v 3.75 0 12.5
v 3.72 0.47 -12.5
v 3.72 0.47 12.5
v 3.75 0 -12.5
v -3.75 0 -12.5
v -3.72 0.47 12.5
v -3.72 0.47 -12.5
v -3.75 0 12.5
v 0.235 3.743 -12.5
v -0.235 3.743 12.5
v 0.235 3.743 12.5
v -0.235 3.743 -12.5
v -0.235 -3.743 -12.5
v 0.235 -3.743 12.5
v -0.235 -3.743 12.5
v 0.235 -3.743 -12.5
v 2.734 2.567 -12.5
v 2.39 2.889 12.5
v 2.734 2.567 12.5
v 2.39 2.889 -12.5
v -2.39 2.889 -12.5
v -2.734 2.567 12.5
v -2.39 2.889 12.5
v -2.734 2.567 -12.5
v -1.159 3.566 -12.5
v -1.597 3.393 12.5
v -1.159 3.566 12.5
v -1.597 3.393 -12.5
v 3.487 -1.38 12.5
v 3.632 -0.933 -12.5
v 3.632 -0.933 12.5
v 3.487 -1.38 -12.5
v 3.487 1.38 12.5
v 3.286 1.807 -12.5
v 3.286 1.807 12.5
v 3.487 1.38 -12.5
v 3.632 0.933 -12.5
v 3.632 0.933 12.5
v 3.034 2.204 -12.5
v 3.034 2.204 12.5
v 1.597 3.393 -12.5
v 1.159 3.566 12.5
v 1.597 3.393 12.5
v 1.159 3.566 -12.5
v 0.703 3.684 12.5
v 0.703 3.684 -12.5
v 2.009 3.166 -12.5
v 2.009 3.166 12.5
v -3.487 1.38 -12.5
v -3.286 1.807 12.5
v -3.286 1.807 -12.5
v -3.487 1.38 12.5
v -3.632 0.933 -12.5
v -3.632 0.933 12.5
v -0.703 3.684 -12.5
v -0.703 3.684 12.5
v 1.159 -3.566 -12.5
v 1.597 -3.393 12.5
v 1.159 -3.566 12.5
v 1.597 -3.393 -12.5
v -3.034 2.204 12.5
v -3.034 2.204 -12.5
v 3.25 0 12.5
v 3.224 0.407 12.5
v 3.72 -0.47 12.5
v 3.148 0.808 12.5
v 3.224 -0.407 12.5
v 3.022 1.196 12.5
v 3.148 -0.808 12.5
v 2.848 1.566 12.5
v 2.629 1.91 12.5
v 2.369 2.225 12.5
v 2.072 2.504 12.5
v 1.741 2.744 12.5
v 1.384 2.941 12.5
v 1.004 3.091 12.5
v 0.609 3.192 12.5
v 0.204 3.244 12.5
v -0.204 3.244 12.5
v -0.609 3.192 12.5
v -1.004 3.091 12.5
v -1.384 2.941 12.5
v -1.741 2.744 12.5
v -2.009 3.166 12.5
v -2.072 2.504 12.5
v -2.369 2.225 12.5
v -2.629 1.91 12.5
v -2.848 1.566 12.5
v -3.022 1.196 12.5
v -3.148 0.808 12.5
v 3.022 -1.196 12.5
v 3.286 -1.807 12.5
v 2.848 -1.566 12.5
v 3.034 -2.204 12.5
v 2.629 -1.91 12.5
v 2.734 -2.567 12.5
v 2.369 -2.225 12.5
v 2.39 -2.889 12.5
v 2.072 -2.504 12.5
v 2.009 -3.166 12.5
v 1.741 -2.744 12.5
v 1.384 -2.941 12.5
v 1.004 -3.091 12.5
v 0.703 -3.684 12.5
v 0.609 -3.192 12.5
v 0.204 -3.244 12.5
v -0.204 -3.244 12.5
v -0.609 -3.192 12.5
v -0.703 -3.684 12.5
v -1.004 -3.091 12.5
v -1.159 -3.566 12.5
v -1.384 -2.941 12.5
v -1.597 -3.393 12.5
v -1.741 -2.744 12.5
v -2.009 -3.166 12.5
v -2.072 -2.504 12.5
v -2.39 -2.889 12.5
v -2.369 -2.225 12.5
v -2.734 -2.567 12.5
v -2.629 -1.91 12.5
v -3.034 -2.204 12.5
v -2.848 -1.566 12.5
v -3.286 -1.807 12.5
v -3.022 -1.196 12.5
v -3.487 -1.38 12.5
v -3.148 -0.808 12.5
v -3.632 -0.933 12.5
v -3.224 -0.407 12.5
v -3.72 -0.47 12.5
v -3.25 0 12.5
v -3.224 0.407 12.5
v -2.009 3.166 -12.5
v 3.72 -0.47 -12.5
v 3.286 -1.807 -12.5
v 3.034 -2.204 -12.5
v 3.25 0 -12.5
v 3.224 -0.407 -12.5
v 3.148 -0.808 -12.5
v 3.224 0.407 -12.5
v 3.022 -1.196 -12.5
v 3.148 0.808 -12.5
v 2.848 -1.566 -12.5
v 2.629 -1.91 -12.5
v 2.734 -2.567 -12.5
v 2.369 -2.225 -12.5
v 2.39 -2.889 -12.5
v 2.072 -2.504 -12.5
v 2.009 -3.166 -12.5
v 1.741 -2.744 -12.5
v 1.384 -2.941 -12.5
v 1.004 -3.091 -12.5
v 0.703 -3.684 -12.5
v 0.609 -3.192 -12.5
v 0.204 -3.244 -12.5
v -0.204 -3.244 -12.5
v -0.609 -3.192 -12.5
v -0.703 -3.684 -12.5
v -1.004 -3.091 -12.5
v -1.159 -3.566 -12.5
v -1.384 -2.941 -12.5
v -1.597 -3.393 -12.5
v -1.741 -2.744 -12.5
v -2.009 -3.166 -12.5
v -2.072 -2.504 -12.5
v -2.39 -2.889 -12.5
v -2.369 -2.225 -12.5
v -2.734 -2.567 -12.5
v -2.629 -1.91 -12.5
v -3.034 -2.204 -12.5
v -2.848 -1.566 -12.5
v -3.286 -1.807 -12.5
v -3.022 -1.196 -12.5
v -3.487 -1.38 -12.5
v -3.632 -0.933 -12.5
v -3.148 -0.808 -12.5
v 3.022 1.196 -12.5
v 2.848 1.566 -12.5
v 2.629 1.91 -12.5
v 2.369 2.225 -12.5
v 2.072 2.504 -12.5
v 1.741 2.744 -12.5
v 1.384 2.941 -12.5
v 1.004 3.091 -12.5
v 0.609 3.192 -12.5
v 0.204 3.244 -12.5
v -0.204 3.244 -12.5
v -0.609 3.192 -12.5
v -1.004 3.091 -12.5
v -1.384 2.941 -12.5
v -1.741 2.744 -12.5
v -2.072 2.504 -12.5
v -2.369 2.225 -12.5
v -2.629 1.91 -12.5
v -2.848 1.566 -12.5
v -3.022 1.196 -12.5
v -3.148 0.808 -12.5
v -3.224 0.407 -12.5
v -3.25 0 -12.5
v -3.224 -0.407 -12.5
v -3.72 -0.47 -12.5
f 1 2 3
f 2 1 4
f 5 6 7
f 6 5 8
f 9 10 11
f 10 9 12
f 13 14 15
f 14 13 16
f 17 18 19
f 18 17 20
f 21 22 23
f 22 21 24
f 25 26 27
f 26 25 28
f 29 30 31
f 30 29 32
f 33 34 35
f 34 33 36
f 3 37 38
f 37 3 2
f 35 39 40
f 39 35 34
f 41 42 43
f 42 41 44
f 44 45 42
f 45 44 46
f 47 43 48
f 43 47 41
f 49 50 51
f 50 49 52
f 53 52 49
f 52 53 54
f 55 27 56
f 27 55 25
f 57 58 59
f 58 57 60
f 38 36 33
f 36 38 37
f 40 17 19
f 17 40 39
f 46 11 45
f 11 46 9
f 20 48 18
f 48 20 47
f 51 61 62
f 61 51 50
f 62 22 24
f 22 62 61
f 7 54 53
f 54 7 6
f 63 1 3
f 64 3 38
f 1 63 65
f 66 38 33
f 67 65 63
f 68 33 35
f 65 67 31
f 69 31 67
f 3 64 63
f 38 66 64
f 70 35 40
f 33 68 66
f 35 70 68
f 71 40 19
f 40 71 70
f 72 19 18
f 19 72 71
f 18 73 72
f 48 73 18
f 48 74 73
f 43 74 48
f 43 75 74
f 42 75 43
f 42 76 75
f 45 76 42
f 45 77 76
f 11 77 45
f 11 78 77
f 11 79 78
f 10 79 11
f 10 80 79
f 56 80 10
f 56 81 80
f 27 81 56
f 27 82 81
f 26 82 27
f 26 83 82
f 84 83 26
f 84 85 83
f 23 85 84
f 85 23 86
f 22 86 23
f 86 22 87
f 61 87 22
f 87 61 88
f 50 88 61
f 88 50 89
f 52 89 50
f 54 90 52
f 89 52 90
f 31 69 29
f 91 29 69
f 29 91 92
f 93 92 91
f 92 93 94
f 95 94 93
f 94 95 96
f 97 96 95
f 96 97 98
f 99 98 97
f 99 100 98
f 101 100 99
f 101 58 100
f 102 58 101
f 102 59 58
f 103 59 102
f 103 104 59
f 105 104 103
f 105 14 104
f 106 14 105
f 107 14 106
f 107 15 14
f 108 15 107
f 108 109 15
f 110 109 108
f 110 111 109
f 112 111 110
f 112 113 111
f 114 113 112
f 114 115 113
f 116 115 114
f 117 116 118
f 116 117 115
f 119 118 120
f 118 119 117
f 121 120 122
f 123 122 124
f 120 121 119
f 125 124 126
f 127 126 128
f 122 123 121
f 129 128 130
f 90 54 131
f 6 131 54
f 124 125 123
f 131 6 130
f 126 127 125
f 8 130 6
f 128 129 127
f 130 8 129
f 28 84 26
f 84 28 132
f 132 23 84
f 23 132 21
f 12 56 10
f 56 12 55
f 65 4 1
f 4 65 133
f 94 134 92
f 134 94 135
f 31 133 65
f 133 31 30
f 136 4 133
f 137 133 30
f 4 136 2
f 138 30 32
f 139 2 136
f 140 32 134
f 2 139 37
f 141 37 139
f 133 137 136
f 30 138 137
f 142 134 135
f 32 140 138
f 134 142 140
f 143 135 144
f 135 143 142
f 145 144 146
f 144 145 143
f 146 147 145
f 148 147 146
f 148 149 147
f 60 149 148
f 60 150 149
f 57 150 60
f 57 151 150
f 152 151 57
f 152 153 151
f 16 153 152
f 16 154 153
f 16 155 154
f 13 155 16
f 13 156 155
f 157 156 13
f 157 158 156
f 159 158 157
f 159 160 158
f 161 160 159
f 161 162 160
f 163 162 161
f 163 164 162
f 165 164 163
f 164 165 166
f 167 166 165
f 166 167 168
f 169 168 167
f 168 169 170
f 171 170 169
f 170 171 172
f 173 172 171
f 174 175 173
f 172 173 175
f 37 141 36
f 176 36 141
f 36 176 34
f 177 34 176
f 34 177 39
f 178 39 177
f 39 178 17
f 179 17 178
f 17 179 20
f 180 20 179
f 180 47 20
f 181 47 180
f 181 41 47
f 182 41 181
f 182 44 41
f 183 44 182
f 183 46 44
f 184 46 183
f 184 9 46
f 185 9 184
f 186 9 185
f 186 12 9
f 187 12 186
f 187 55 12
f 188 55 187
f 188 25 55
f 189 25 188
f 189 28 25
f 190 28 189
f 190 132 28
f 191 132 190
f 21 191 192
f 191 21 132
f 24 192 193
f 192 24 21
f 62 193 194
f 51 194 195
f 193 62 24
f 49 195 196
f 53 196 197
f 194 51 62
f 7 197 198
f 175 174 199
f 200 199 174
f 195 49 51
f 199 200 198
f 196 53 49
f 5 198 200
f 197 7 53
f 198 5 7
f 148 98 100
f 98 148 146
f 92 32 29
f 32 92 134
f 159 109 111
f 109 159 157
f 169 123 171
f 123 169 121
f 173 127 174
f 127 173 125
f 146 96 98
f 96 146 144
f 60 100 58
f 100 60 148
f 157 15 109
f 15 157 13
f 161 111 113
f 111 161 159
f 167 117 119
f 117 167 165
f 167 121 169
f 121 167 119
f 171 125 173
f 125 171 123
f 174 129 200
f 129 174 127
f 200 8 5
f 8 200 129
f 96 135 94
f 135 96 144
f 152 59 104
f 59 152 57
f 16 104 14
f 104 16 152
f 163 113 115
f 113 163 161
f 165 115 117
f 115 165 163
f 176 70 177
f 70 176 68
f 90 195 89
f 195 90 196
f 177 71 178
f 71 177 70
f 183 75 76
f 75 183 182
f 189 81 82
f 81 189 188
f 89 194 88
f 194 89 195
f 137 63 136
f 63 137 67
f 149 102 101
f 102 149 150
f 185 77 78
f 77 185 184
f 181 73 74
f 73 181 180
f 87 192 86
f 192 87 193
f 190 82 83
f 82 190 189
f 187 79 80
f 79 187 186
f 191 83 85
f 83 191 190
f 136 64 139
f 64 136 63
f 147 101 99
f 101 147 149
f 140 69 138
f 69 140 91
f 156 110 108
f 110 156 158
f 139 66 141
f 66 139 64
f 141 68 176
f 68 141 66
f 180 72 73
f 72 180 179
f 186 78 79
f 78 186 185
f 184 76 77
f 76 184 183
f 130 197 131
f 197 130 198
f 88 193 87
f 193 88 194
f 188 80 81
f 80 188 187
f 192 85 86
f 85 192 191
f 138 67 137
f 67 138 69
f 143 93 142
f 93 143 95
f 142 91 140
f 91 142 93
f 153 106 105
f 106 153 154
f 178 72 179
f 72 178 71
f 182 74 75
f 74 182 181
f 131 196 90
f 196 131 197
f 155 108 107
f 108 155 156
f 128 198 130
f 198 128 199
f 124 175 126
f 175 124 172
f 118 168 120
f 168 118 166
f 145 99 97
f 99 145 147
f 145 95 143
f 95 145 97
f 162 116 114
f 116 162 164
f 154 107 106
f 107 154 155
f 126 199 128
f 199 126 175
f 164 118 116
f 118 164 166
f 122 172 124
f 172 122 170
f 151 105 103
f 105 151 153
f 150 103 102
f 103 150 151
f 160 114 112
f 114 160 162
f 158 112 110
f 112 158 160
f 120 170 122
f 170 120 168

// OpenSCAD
$fn = 50;


difference() {
	union() {
		translate(v = [0, 0, -12.5000000000]) {
			cylinder(h = 25, r = 3.7500000000);
		}
	}
	union() {
		translate(v = [0, 0, -100.0000000000]) {
			cylinder(h = 200, r = 3.2500000000);
		}
	}
}
